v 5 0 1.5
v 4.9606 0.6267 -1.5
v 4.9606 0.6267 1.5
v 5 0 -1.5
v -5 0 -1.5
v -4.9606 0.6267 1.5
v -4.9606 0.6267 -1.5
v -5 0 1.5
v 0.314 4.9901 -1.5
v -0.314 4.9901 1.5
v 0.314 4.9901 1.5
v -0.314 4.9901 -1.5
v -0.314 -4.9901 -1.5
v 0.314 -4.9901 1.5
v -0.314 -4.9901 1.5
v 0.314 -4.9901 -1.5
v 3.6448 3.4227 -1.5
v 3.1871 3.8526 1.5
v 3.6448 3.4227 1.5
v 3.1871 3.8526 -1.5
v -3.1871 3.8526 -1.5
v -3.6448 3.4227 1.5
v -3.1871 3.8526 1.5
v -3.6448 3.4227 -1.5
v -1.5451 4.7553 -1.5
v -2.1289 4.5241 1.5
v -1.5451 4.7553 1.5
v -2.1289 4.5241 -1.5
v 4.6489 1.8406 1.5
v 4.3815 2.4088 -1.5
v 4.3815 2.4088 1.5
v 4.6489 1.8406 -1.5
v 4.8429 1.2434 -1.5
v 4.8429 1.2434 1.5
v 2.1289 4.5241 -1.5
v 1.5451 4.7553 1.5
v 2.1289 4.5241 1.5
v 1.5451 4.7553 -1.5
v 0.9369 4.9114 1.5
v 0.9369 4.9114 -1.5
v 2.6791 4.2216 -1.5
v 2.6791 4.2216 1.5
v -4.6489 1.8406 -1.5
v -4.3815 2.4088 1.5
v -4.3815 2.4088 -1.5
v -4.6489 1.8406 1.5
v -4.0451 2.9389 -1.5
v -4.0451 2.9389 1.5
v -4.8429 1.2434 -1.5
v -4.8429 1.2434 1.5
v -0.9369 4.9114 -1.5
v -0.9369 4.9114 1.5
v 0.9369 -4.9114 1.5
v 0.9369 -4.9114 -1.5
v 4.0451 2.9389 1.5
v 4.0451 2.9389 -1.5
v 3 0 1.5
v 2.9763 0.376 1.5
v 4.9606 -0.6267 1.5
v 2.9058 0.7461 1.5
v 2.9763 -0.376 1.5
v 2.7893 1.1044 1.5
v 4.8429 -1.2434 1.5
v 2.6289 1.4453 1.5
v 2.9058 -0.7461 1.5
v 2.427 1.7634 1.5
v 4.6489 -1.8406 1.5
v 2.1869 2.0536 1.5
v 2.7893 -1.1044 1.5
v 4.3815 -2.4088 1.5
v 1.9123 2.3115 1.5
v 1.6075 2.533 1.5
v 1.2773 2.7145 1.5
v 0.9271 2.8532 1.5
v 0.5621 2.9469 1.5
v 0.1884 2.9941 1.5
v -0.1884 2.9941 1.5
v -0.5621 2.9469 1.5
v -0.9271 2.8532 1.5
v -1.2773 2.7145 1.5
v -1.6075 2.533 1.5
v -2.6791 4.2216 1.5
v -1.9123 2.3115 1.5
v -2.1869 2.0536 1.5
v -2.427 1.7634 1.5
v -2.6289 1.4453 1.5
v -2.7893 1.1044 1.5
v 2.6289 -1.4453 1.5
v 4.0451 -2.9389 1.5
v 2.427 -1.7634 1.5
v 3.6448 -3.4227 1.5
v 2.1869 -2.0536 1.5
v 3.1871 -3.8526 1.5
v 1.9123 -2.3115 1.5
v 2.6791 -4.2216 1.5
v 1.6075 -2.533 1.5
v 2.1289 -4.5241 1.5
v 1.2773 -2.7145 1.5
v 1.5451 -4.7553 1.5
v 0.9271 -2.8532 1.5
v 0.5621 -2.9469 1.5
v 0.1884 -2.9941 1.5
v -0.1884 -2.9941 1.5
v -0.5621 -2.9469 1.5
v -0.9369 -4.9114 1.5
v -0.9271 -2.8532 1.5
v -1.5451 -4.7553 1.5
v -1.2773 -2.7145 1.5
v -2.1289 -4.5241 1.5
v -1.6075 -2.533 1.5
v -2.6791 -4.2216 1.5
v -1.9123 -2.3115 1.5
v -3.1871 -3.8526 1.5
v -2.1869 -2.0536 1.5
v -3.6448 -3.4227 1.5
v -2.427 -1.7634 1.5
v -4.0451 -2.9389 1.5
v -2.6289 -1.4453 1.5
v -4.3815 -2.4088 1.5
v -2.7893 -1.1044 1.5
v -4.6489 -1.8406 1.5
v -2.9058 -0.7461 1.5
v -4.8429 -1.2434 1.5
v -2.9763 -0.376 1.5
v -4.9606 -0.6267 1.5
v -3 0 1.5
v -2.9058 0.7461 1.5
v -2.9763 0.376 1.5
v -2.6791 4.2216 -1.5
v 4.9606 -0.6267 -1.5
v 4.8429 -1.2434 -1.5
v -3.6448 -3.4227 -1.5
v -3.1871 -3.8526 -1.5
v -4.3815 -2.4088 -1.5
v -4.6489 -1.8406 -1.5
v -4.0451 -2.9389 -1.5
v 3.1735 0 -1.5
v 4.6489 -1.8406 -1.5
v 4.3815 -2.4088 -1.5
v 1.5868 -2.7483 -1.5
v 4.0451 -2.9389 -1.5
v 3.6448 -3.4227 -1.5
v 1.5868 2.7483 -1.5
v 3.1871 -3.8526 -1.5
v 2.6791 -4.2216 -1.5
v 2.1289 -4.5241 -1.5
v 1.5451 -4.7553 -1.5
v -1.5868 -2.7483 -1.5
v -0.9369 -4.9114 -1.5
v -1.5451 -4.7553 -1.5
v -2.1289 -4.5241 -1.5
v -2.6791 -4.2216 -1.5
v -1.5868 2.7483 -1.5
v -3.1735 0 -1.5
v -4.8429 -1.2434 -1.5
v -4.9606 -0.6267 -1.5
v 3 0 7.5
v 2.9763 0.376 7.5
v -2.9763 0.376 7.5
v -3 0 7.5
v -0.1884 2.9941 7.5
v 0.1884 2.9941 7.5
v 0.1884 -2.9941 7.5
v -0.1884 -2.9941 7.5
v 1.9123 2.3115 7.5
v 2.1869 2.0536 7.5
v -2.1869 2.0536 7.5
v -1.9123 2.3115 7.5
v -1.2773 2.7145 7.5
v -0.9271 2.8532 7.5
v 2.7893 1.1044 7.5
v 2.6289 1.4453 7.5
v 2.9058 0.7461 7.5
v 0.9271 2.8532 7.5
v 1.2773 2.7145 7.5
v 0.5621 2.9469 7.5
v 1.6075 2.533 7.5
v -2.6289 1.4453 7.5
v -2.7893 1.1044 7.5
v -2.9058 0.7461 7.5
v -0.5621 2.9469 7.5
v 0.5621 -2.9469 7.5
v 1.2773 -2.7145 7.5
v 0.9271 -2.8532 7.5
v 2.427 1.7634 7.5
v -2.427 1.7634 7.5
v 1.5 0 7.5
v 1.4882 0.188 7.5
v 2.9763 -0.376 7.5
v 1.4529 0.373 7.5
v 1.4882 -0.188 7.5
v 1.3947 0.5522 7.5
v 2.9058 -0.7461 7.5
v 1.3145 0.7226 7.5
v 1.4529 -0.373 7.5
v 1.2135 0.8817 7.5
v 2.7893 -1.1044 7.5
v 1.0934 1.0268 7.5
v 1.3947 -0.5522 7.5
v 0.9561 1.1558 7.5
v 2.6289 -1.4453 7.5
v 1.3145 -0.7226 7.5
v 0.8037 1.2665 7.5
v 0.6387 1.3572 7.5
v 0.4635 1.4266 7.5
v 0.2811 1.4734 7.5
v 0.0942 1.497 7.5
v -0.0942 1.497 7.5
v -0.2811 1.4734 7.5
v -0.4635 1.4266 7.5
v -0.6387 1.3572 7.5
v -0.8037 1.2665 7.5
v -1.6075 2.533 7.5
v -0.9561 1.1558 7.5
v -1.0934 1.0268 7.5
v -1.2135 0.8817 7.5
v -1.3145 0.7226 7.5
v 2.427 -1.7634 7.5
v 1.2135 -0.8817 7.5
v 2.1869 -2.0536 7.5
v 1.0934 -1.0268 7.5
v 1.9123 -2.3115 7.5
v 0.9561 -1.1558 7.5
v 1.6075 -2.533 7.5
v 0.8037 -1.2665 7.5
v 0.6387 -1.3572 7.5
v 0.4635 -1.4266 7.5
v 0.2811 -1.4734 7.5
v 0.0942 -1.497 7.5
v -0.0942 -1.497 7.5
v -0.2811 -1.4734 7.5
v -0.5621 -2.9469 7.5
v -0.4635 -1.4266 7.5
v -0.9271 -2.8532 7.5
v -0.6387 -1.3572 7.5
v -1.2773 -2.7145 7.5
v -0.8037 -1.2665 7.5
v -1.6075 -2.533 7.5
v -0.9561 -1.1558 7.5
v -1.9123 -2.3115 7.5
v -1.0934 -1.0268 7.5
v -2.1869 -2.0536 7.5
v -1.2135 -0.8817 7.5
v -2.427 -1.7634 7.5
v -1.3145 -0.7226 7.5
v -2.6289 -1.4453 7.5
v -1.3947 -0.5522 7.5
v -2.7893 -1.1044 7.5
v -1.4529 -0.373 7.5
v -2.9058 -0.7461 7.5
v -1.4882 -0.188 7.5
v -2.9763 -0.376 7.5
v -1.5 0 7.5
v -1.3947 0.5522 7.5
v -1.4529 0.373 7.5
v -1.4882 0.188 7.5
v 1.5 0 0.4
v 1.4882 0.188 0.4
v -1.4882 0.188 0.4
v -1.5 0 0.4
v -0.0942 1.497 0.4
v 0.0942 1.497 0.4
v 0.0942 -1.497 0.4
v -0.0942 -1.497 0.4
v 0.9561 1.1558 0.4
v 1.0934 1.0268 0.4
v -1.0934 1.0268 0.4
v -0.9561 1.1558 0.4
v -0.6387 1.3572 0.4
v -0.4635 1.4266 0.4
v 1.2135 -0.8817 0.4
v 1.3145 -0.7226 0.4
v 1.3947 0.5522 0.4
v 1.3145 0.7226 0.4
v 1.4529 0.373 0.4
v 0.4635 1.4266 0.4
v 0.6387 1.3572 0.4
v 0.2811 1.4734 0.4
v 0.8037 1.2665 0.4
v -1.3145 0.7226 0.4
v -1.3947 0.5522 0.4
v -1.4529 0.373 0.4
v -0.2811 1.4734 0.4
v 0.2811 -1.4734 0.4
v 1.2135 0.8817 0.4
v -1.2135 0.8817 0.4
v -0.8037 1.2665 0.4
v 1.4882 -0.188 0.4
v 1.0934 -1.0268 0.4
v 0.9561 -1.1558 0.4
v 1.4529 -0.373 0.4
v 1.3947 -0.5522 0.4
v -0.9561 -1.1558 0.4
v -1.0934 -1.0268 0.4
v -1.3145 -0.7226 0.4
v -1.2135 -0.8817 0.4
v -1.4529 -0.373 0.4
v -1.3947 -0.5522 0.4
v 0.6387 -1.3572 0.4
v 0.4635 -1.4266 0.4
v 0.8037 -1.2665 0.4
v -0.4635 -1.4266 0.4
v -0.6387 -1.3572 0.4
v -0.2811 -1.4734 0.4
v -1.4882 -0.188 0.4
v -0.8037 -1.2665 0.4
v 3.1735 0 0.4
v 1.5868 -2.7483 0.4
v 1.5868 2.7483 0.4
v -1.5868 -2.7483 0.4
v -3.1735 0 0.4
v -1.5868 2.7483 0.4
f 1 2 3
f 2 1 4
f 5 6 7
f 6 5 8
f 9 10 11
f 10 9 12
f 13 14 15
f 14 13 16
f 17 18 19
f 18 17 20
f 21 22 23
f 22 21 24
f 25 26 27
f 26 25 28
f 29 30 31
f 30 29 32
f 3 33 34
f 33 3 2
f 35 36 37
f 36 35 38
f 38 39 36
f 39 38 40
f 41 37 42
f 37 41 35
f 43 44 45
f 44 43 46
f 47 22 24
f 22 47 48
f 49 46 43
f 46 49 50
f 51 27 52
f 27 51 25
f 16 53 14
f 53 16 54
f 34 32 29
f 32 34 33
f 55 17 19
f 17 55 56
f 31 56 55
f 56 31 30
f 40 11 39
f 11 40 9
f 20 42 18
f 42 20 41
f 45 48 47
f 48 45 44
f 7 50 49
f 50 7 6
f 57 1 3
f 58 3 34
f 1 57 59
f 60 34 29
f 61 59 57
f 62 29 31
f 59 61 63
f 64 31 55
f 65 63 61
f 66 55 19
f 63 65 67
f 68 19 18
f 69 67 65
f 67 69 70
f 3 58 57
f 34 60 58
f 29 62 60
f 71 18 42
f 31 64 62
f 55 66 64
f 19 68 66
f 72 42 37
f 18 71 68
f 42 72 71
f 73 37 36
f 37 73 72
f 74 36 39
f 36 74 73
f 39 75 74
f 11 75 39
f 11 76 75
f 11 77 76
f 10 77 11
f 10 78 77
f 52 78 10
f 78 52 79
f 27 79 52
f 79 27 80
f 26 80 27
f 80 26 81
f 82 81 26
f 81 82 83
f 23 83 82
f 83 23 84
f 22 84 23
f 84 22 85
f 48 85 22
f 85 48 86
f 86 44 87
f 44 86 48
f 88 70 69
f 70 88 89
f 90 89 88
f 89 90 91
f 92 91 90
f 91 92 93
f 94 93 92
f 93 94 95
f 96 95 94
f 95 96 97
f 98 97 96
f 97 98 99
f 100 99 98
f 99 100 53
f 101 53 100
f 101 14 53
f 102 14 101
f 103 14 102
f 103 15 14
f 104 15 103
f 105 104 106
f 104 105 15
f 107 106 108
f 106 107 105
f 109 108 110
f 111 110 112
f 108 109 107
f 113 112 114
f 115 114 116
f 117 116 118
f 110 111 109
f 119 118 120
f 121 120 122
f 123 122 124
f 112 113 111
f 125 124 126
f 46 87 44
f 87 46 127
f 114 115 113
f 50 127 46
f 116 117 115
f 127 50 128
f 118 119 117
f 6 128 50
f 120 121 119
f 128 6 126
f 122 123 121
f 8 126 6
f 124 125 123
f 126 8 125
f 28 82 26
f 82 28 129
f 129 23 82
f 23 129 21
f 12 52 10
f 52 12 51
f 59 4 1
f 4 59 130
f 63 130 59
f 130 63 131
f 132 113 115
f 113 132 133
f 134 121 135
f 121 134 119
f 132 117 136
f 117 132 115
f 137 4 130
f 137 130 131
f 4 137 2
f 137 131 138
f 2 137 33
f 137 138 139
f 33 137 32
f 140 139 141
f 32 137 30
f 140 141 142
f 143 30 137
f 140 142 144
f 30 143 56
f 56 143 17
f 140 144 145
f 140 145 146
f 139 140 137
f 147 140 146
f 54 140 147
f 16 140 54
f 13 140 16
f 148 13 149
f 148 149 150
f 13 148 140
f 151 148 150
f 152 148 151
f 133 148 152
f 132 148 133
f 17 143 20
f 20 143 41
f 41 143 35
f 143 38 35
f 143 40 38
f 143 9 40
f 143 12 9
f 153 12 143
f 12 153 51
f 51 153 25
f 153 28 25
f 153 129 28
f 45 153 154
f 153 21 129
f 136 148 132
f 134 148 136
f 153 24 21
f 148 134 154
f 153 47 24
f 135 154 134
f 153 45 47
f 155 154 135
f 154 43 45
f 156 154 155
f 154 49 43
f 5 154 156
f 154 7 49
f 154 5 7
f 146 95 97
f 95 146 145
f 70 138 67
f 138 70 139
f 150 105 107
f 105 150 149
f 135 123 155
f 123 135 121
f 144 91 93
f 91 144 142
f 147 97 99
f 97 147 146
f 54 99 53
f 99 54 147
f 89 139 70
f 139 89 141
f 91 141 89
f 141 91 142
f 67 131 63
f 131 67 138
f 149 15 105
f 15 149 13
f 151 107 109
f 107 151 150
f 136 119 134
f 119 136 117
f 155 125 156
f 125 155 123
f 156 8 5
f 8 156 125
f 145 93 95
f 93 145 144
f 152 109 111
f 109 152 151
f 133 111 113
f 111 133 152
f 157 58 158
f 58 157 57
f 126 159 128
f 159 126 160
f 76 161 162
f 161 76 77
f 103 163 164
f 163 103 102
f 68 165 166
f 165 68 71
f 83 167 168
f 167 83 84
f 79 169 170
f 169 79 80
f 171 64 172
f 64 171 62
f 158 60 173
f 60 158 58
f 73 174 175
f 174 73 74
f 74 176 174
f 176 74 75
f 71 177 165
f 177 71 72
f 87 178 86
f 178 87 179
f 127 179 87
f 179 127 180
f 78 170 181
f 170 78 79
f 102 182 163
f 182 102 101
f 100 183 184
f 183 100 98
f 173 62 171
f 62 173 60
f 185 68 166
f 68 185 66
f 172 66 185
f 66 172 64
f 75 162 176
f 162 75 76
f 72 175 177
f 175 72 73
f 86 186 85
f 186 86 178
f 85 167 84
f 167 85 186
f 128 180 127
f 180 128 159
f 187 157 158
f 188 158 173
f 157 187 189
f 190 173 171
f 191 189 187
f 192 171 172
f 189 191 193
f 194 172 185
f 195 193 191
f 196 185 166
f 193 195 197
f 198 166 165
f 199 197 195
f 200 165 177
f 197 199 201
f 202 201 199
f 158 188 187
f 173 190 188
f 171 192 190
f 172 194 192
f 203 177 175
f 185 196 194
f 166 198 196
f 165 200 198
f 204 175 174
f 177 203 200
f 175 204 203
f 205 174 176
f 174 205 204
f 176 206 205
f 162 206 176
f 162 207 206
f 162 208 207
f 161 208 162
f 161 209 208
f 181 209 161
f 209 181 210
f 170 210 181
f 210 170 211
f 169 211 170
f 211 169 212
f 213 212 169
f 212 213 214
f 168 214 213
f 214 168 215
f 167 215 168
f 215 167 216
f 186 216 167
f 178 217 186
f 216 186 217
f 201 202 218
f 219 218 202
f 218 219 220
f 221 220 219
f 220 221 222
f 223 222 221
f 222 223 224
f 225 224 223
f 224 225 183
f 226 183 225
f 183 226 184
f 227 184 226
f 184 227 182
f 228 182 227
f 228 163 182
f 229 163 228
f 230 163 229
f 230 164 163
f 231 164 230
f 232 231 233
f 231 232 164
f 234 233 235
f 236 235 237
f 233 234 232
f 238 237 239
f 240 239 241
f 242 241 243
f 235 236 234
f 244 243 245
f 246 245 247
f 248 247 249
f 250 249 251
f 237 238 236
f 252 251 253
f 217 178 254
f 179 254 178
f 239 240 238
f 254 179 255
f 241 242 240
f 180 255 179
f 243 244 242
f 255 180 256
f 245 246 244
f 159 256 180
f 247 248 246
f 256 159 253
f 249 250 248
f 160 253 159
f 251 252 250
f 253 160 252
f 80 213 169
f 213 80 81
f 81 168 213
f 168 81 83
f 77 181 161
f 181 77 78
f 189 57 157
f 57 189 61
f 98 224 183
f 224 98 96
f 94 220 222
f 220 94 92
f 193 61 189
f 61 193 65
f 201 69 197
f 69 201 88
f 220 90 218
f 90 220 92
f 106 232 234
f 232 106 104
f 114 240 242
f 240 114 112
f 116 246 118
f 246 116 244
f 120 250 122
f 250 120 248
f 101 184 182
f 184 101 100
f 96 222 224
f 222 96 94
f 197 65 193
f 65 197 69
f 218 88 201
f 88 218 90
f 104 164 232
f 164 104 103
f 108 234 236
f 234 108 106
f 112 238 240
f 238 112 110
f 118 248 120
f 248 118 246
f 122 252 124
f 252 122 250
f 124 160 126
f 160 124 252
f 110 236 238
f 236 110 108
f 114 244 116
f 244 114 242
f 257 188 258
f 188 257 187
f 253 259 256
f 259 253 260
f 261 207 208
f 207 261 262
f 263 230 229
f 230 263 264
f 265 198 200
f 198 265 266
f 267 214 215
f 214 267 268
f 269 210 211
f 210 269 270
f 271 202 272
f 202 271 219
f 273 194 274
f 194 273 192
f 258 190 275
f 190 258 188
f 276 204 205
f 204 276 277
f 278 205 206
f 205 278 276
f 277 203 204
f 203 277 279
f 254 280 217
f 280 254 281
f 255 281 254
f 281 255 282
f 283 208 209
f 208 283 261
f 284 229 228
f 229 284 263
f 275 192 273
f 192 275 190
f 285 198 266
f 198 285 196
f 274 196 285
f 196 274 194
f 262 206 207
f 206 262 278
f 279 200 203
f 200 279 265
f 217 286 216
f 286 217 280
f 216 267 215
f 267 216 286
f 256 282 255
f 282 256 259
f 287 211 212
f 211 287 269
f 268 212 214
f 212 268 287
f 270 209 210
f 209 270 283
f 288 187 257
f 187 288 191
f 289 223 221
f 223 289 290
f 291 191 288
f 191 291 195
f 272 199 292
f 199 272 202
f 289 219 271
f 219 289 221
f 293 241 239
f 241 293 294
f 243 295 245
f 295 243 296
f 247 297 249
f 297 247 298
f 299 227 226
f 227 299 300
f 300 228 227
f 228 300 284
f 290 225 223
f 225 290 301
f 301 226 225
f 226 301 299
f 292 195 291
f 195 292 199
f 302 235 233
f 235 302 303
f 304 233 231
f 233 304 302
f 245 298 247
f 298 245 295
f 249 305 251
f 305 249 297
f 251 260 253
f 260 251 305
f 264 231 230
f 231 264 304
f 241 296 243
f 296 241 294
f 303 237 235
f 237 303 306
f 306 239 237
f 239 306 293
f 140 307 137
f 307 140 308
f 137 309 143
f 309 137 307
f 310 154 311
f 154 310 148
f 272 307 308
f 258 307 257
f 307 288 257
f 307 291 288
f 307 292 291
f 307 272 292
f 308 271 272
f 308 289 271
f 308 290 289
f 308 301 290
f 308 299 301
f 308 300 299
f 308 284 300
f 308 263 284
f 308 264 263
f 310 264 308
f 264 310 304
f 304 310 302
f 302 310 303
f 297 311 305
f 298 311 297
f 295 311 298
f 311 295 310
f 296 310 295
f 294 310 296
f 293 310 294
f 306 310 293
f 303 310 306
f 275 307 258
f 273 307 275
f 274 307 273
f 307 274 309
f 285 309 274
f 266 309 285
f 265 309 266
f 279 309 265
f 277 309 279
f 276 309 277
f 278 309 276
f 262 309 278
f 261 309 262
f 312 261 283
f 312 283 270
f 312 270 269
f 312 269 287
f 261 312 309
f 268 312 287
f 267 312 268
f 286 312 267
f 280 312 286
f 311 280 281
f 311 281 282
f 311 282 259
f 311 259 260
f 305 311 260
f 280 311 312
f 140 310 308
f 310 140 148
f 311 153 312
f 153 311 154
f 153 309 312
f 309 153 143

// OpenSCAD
$fn = 50;


difference() {
	union() {
		translate(v = [0, 0, -1.5000000000]) {
			rotate(a = [0, 0, 0]) {
				cylinder(h = 3, r = 5.0000000000);
			}
		}
		translate(v = [0, 0, -1.5000000000]) {
			rotate(a = [0, 0, 0]) {
				cylinder(h = 9, r = 3.0000000000);
			}
		}
	}
	union() {
		translate(v = [0, 0, -125.0000000000]) {
			rotate(a = [0, 0, 0]) {
				cylinder(h = 250, r = 1.5000000000);
			}
		}
		translate(v = [0, 0, -2.1000000000]) {
			rotate(a = [0, 0, 0]) {
				#translate(v = [0, 0, 0]) {
					rotate(a = [0, 0, 0]) {
						linear_extrude(height = 2.5000000000) {
							polygon(points = [[3.1735000000, 0.0000000000], [1.5867500000, 2.7483316189], [-1.5867500000, 2.7483316189], [-3.1735000000, 0.0000000000], [-1.5867500000, -2.7483316189], [1.5867500000, -2.7483316189]]);
						}
					}
				}
			}
		}
	}
}
